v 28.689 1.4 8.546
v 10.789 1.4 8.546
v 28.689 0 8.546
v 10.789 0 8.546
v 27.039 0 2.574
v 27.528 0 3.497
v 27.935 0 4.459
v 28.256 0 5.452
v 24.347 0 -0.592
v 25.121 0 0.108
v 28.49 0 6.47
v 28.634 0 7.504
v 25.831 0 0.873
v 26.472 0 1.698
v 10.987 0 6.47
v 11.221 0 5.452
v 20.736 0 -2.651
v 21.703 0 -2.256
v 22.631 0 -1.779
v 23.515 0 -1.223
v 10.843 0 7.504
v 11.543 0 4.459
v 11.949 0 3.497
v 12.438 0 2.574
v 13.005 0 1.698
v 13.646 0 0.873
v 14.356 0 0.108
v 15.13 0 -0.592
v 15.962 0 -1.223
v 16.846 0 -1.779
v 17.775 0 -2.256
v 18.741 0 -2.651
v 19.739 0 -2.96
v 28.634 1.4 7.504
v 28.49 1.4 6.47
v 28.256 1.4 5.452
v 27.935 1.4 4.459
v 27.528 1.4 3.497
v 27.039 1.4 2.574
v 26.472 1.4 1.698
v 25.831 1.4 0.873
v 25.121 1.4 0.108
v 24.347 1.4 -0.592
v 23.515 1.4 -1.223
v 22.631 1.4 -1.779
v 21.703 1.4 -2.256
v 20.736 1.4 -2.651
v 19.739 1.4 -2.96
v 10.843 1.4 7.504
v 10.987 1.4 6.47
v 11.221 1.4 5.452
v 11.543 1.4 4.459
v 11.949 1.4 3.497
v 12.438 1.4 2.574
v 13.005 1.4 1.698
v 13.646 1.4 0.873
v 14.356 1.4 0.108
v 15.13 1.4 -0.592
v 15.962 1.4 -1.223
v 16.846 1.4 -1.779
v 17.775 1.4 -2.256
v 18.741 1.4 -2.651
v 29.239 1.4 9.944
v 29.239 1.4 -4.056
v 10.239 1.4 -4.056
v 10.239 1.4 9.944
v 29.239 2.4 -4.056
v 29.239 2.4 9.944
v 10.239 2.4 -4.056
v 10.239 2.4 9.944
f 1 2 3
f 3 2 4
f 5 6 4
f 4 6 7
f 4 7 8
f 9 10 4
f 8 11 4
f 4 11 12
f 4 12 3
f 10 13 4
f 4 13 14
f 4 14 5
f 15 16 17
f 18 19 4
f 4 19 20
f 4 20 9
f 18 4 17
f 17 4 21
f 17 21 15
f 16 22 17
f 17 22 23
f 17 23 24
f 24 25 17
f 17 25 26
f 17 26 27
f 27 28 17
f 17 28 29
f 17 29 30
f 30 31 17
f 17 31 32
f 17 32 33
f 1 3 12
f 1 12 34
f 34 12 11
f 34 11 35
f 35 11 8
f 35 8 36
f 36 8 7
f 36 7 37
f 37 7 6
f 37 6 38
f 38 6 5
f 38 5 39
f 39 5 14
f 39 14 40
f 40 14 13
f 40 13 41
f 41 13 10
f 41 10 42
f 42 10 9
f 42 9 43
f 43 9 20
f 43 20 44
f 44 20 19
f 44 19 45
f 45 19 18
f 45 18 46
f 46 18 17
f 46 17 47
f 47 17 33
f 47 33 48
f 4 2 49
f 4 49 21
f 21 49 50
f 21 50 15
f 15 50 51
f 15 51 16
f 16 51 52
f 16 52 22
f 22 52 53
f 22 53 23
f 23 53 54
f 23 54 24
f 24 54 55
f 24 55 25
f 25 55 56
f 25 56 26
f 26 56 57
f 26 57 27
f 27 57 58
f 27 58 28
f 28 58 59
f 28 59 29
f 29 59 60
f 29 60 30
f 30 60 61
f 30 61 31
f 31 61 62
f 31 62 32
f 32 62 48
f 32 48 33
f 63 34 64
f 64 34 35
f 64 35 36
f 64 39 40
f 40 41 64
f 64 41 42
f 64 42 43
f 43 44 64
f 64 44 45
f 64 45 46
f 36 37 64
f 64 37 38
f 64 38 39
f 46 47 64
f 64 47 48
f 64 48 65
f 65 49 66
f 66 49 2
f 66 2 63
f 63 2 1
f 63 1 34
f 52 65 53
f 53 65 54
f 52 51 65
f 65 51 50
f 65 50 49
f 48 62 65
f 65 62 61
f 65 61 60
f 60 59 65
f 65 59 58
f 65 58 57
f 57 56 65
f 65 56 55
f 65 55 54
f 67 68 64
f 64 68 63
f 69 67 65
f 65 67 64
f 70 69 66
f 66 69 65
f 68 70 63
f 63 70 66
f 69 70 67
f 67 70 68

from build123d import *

# Parameters (mm, degrees)
SKETCH3_W           = 17.9
SKETCH3_H           = 11.9
BOSS_EXTRUDE3_DEPTH = 1.4
FILLET2_R           = 12
SKETCH4_W           = 19
SKETCH4_H           = 14
BOSS_EXTRUDE4_DEPTH = 1


with BuildPart() as part:
    # Sketch3 → Boss-Extrude3 (new body)
    with BuildSketch(Plane(origin=(0, 0, 0), x_dir=(1, 0, 0), z_dir=(0, 1, 0))):
        with Locations((19.738575208, -2.596225655)):
            Rectangle(SKETCH3_W, SKETCH3_H)
    extrude(amount=BOSS_EXTRUDE3_DEPTH)

    # Fillet2
    # the kernel refuses this fillet: 12 mm, written as the material it takes off along each edge
    with BuildSketch(Plane(origin=(10.788575208, -30, -3.353774345), x_dir=(1, 0, 0), z_dir=(0, 1, 0))) as fillet2_piece_1:
        with BuildLine():
            CenterArc((FILLET2_R, -FILLET2_R), FILLET2_R, 90, 90)
            Line((0, -FILLET2_R), (0, 0))
            Line((0, 0), (FILLET2_R, 0))
        make_face()
    extrude(amount=61.4, mode=Mode.SUBTRACT)
    with BuildSketch(Plane(origin=(28.688575208, -30, -3.353774345), x_dir=(-1, 0, 0), z_dir=(0, 1, 0))) as fillet2_piece_2:
        with BuildLine():
            CenterArc((FILLET2_R, FILLET2_R), FILLET2_R, 180, 90)
            Line((0, FILLET2_R), (0, 0))
            Line((0, 0), (FILLET2_R, 0))
        make_face()
    extrude(amount=61.4, mode=Mode.SUBTRACT)

    # Sketch4 → Boss-Extrude4 (add)
    with BuildSketch(Plane(origin=(0, 1.4, 0), x_dir=(1, 0, 0), z_dir=(0, 1, 0))):
        with Locations((19.738575208, -2.944154074)):
            Rectangle(SKETCH4_W, SKETCH4_H)
    extrude(amount=BOSS_EXTRUDE4_DEPTH)


solid = part.part
